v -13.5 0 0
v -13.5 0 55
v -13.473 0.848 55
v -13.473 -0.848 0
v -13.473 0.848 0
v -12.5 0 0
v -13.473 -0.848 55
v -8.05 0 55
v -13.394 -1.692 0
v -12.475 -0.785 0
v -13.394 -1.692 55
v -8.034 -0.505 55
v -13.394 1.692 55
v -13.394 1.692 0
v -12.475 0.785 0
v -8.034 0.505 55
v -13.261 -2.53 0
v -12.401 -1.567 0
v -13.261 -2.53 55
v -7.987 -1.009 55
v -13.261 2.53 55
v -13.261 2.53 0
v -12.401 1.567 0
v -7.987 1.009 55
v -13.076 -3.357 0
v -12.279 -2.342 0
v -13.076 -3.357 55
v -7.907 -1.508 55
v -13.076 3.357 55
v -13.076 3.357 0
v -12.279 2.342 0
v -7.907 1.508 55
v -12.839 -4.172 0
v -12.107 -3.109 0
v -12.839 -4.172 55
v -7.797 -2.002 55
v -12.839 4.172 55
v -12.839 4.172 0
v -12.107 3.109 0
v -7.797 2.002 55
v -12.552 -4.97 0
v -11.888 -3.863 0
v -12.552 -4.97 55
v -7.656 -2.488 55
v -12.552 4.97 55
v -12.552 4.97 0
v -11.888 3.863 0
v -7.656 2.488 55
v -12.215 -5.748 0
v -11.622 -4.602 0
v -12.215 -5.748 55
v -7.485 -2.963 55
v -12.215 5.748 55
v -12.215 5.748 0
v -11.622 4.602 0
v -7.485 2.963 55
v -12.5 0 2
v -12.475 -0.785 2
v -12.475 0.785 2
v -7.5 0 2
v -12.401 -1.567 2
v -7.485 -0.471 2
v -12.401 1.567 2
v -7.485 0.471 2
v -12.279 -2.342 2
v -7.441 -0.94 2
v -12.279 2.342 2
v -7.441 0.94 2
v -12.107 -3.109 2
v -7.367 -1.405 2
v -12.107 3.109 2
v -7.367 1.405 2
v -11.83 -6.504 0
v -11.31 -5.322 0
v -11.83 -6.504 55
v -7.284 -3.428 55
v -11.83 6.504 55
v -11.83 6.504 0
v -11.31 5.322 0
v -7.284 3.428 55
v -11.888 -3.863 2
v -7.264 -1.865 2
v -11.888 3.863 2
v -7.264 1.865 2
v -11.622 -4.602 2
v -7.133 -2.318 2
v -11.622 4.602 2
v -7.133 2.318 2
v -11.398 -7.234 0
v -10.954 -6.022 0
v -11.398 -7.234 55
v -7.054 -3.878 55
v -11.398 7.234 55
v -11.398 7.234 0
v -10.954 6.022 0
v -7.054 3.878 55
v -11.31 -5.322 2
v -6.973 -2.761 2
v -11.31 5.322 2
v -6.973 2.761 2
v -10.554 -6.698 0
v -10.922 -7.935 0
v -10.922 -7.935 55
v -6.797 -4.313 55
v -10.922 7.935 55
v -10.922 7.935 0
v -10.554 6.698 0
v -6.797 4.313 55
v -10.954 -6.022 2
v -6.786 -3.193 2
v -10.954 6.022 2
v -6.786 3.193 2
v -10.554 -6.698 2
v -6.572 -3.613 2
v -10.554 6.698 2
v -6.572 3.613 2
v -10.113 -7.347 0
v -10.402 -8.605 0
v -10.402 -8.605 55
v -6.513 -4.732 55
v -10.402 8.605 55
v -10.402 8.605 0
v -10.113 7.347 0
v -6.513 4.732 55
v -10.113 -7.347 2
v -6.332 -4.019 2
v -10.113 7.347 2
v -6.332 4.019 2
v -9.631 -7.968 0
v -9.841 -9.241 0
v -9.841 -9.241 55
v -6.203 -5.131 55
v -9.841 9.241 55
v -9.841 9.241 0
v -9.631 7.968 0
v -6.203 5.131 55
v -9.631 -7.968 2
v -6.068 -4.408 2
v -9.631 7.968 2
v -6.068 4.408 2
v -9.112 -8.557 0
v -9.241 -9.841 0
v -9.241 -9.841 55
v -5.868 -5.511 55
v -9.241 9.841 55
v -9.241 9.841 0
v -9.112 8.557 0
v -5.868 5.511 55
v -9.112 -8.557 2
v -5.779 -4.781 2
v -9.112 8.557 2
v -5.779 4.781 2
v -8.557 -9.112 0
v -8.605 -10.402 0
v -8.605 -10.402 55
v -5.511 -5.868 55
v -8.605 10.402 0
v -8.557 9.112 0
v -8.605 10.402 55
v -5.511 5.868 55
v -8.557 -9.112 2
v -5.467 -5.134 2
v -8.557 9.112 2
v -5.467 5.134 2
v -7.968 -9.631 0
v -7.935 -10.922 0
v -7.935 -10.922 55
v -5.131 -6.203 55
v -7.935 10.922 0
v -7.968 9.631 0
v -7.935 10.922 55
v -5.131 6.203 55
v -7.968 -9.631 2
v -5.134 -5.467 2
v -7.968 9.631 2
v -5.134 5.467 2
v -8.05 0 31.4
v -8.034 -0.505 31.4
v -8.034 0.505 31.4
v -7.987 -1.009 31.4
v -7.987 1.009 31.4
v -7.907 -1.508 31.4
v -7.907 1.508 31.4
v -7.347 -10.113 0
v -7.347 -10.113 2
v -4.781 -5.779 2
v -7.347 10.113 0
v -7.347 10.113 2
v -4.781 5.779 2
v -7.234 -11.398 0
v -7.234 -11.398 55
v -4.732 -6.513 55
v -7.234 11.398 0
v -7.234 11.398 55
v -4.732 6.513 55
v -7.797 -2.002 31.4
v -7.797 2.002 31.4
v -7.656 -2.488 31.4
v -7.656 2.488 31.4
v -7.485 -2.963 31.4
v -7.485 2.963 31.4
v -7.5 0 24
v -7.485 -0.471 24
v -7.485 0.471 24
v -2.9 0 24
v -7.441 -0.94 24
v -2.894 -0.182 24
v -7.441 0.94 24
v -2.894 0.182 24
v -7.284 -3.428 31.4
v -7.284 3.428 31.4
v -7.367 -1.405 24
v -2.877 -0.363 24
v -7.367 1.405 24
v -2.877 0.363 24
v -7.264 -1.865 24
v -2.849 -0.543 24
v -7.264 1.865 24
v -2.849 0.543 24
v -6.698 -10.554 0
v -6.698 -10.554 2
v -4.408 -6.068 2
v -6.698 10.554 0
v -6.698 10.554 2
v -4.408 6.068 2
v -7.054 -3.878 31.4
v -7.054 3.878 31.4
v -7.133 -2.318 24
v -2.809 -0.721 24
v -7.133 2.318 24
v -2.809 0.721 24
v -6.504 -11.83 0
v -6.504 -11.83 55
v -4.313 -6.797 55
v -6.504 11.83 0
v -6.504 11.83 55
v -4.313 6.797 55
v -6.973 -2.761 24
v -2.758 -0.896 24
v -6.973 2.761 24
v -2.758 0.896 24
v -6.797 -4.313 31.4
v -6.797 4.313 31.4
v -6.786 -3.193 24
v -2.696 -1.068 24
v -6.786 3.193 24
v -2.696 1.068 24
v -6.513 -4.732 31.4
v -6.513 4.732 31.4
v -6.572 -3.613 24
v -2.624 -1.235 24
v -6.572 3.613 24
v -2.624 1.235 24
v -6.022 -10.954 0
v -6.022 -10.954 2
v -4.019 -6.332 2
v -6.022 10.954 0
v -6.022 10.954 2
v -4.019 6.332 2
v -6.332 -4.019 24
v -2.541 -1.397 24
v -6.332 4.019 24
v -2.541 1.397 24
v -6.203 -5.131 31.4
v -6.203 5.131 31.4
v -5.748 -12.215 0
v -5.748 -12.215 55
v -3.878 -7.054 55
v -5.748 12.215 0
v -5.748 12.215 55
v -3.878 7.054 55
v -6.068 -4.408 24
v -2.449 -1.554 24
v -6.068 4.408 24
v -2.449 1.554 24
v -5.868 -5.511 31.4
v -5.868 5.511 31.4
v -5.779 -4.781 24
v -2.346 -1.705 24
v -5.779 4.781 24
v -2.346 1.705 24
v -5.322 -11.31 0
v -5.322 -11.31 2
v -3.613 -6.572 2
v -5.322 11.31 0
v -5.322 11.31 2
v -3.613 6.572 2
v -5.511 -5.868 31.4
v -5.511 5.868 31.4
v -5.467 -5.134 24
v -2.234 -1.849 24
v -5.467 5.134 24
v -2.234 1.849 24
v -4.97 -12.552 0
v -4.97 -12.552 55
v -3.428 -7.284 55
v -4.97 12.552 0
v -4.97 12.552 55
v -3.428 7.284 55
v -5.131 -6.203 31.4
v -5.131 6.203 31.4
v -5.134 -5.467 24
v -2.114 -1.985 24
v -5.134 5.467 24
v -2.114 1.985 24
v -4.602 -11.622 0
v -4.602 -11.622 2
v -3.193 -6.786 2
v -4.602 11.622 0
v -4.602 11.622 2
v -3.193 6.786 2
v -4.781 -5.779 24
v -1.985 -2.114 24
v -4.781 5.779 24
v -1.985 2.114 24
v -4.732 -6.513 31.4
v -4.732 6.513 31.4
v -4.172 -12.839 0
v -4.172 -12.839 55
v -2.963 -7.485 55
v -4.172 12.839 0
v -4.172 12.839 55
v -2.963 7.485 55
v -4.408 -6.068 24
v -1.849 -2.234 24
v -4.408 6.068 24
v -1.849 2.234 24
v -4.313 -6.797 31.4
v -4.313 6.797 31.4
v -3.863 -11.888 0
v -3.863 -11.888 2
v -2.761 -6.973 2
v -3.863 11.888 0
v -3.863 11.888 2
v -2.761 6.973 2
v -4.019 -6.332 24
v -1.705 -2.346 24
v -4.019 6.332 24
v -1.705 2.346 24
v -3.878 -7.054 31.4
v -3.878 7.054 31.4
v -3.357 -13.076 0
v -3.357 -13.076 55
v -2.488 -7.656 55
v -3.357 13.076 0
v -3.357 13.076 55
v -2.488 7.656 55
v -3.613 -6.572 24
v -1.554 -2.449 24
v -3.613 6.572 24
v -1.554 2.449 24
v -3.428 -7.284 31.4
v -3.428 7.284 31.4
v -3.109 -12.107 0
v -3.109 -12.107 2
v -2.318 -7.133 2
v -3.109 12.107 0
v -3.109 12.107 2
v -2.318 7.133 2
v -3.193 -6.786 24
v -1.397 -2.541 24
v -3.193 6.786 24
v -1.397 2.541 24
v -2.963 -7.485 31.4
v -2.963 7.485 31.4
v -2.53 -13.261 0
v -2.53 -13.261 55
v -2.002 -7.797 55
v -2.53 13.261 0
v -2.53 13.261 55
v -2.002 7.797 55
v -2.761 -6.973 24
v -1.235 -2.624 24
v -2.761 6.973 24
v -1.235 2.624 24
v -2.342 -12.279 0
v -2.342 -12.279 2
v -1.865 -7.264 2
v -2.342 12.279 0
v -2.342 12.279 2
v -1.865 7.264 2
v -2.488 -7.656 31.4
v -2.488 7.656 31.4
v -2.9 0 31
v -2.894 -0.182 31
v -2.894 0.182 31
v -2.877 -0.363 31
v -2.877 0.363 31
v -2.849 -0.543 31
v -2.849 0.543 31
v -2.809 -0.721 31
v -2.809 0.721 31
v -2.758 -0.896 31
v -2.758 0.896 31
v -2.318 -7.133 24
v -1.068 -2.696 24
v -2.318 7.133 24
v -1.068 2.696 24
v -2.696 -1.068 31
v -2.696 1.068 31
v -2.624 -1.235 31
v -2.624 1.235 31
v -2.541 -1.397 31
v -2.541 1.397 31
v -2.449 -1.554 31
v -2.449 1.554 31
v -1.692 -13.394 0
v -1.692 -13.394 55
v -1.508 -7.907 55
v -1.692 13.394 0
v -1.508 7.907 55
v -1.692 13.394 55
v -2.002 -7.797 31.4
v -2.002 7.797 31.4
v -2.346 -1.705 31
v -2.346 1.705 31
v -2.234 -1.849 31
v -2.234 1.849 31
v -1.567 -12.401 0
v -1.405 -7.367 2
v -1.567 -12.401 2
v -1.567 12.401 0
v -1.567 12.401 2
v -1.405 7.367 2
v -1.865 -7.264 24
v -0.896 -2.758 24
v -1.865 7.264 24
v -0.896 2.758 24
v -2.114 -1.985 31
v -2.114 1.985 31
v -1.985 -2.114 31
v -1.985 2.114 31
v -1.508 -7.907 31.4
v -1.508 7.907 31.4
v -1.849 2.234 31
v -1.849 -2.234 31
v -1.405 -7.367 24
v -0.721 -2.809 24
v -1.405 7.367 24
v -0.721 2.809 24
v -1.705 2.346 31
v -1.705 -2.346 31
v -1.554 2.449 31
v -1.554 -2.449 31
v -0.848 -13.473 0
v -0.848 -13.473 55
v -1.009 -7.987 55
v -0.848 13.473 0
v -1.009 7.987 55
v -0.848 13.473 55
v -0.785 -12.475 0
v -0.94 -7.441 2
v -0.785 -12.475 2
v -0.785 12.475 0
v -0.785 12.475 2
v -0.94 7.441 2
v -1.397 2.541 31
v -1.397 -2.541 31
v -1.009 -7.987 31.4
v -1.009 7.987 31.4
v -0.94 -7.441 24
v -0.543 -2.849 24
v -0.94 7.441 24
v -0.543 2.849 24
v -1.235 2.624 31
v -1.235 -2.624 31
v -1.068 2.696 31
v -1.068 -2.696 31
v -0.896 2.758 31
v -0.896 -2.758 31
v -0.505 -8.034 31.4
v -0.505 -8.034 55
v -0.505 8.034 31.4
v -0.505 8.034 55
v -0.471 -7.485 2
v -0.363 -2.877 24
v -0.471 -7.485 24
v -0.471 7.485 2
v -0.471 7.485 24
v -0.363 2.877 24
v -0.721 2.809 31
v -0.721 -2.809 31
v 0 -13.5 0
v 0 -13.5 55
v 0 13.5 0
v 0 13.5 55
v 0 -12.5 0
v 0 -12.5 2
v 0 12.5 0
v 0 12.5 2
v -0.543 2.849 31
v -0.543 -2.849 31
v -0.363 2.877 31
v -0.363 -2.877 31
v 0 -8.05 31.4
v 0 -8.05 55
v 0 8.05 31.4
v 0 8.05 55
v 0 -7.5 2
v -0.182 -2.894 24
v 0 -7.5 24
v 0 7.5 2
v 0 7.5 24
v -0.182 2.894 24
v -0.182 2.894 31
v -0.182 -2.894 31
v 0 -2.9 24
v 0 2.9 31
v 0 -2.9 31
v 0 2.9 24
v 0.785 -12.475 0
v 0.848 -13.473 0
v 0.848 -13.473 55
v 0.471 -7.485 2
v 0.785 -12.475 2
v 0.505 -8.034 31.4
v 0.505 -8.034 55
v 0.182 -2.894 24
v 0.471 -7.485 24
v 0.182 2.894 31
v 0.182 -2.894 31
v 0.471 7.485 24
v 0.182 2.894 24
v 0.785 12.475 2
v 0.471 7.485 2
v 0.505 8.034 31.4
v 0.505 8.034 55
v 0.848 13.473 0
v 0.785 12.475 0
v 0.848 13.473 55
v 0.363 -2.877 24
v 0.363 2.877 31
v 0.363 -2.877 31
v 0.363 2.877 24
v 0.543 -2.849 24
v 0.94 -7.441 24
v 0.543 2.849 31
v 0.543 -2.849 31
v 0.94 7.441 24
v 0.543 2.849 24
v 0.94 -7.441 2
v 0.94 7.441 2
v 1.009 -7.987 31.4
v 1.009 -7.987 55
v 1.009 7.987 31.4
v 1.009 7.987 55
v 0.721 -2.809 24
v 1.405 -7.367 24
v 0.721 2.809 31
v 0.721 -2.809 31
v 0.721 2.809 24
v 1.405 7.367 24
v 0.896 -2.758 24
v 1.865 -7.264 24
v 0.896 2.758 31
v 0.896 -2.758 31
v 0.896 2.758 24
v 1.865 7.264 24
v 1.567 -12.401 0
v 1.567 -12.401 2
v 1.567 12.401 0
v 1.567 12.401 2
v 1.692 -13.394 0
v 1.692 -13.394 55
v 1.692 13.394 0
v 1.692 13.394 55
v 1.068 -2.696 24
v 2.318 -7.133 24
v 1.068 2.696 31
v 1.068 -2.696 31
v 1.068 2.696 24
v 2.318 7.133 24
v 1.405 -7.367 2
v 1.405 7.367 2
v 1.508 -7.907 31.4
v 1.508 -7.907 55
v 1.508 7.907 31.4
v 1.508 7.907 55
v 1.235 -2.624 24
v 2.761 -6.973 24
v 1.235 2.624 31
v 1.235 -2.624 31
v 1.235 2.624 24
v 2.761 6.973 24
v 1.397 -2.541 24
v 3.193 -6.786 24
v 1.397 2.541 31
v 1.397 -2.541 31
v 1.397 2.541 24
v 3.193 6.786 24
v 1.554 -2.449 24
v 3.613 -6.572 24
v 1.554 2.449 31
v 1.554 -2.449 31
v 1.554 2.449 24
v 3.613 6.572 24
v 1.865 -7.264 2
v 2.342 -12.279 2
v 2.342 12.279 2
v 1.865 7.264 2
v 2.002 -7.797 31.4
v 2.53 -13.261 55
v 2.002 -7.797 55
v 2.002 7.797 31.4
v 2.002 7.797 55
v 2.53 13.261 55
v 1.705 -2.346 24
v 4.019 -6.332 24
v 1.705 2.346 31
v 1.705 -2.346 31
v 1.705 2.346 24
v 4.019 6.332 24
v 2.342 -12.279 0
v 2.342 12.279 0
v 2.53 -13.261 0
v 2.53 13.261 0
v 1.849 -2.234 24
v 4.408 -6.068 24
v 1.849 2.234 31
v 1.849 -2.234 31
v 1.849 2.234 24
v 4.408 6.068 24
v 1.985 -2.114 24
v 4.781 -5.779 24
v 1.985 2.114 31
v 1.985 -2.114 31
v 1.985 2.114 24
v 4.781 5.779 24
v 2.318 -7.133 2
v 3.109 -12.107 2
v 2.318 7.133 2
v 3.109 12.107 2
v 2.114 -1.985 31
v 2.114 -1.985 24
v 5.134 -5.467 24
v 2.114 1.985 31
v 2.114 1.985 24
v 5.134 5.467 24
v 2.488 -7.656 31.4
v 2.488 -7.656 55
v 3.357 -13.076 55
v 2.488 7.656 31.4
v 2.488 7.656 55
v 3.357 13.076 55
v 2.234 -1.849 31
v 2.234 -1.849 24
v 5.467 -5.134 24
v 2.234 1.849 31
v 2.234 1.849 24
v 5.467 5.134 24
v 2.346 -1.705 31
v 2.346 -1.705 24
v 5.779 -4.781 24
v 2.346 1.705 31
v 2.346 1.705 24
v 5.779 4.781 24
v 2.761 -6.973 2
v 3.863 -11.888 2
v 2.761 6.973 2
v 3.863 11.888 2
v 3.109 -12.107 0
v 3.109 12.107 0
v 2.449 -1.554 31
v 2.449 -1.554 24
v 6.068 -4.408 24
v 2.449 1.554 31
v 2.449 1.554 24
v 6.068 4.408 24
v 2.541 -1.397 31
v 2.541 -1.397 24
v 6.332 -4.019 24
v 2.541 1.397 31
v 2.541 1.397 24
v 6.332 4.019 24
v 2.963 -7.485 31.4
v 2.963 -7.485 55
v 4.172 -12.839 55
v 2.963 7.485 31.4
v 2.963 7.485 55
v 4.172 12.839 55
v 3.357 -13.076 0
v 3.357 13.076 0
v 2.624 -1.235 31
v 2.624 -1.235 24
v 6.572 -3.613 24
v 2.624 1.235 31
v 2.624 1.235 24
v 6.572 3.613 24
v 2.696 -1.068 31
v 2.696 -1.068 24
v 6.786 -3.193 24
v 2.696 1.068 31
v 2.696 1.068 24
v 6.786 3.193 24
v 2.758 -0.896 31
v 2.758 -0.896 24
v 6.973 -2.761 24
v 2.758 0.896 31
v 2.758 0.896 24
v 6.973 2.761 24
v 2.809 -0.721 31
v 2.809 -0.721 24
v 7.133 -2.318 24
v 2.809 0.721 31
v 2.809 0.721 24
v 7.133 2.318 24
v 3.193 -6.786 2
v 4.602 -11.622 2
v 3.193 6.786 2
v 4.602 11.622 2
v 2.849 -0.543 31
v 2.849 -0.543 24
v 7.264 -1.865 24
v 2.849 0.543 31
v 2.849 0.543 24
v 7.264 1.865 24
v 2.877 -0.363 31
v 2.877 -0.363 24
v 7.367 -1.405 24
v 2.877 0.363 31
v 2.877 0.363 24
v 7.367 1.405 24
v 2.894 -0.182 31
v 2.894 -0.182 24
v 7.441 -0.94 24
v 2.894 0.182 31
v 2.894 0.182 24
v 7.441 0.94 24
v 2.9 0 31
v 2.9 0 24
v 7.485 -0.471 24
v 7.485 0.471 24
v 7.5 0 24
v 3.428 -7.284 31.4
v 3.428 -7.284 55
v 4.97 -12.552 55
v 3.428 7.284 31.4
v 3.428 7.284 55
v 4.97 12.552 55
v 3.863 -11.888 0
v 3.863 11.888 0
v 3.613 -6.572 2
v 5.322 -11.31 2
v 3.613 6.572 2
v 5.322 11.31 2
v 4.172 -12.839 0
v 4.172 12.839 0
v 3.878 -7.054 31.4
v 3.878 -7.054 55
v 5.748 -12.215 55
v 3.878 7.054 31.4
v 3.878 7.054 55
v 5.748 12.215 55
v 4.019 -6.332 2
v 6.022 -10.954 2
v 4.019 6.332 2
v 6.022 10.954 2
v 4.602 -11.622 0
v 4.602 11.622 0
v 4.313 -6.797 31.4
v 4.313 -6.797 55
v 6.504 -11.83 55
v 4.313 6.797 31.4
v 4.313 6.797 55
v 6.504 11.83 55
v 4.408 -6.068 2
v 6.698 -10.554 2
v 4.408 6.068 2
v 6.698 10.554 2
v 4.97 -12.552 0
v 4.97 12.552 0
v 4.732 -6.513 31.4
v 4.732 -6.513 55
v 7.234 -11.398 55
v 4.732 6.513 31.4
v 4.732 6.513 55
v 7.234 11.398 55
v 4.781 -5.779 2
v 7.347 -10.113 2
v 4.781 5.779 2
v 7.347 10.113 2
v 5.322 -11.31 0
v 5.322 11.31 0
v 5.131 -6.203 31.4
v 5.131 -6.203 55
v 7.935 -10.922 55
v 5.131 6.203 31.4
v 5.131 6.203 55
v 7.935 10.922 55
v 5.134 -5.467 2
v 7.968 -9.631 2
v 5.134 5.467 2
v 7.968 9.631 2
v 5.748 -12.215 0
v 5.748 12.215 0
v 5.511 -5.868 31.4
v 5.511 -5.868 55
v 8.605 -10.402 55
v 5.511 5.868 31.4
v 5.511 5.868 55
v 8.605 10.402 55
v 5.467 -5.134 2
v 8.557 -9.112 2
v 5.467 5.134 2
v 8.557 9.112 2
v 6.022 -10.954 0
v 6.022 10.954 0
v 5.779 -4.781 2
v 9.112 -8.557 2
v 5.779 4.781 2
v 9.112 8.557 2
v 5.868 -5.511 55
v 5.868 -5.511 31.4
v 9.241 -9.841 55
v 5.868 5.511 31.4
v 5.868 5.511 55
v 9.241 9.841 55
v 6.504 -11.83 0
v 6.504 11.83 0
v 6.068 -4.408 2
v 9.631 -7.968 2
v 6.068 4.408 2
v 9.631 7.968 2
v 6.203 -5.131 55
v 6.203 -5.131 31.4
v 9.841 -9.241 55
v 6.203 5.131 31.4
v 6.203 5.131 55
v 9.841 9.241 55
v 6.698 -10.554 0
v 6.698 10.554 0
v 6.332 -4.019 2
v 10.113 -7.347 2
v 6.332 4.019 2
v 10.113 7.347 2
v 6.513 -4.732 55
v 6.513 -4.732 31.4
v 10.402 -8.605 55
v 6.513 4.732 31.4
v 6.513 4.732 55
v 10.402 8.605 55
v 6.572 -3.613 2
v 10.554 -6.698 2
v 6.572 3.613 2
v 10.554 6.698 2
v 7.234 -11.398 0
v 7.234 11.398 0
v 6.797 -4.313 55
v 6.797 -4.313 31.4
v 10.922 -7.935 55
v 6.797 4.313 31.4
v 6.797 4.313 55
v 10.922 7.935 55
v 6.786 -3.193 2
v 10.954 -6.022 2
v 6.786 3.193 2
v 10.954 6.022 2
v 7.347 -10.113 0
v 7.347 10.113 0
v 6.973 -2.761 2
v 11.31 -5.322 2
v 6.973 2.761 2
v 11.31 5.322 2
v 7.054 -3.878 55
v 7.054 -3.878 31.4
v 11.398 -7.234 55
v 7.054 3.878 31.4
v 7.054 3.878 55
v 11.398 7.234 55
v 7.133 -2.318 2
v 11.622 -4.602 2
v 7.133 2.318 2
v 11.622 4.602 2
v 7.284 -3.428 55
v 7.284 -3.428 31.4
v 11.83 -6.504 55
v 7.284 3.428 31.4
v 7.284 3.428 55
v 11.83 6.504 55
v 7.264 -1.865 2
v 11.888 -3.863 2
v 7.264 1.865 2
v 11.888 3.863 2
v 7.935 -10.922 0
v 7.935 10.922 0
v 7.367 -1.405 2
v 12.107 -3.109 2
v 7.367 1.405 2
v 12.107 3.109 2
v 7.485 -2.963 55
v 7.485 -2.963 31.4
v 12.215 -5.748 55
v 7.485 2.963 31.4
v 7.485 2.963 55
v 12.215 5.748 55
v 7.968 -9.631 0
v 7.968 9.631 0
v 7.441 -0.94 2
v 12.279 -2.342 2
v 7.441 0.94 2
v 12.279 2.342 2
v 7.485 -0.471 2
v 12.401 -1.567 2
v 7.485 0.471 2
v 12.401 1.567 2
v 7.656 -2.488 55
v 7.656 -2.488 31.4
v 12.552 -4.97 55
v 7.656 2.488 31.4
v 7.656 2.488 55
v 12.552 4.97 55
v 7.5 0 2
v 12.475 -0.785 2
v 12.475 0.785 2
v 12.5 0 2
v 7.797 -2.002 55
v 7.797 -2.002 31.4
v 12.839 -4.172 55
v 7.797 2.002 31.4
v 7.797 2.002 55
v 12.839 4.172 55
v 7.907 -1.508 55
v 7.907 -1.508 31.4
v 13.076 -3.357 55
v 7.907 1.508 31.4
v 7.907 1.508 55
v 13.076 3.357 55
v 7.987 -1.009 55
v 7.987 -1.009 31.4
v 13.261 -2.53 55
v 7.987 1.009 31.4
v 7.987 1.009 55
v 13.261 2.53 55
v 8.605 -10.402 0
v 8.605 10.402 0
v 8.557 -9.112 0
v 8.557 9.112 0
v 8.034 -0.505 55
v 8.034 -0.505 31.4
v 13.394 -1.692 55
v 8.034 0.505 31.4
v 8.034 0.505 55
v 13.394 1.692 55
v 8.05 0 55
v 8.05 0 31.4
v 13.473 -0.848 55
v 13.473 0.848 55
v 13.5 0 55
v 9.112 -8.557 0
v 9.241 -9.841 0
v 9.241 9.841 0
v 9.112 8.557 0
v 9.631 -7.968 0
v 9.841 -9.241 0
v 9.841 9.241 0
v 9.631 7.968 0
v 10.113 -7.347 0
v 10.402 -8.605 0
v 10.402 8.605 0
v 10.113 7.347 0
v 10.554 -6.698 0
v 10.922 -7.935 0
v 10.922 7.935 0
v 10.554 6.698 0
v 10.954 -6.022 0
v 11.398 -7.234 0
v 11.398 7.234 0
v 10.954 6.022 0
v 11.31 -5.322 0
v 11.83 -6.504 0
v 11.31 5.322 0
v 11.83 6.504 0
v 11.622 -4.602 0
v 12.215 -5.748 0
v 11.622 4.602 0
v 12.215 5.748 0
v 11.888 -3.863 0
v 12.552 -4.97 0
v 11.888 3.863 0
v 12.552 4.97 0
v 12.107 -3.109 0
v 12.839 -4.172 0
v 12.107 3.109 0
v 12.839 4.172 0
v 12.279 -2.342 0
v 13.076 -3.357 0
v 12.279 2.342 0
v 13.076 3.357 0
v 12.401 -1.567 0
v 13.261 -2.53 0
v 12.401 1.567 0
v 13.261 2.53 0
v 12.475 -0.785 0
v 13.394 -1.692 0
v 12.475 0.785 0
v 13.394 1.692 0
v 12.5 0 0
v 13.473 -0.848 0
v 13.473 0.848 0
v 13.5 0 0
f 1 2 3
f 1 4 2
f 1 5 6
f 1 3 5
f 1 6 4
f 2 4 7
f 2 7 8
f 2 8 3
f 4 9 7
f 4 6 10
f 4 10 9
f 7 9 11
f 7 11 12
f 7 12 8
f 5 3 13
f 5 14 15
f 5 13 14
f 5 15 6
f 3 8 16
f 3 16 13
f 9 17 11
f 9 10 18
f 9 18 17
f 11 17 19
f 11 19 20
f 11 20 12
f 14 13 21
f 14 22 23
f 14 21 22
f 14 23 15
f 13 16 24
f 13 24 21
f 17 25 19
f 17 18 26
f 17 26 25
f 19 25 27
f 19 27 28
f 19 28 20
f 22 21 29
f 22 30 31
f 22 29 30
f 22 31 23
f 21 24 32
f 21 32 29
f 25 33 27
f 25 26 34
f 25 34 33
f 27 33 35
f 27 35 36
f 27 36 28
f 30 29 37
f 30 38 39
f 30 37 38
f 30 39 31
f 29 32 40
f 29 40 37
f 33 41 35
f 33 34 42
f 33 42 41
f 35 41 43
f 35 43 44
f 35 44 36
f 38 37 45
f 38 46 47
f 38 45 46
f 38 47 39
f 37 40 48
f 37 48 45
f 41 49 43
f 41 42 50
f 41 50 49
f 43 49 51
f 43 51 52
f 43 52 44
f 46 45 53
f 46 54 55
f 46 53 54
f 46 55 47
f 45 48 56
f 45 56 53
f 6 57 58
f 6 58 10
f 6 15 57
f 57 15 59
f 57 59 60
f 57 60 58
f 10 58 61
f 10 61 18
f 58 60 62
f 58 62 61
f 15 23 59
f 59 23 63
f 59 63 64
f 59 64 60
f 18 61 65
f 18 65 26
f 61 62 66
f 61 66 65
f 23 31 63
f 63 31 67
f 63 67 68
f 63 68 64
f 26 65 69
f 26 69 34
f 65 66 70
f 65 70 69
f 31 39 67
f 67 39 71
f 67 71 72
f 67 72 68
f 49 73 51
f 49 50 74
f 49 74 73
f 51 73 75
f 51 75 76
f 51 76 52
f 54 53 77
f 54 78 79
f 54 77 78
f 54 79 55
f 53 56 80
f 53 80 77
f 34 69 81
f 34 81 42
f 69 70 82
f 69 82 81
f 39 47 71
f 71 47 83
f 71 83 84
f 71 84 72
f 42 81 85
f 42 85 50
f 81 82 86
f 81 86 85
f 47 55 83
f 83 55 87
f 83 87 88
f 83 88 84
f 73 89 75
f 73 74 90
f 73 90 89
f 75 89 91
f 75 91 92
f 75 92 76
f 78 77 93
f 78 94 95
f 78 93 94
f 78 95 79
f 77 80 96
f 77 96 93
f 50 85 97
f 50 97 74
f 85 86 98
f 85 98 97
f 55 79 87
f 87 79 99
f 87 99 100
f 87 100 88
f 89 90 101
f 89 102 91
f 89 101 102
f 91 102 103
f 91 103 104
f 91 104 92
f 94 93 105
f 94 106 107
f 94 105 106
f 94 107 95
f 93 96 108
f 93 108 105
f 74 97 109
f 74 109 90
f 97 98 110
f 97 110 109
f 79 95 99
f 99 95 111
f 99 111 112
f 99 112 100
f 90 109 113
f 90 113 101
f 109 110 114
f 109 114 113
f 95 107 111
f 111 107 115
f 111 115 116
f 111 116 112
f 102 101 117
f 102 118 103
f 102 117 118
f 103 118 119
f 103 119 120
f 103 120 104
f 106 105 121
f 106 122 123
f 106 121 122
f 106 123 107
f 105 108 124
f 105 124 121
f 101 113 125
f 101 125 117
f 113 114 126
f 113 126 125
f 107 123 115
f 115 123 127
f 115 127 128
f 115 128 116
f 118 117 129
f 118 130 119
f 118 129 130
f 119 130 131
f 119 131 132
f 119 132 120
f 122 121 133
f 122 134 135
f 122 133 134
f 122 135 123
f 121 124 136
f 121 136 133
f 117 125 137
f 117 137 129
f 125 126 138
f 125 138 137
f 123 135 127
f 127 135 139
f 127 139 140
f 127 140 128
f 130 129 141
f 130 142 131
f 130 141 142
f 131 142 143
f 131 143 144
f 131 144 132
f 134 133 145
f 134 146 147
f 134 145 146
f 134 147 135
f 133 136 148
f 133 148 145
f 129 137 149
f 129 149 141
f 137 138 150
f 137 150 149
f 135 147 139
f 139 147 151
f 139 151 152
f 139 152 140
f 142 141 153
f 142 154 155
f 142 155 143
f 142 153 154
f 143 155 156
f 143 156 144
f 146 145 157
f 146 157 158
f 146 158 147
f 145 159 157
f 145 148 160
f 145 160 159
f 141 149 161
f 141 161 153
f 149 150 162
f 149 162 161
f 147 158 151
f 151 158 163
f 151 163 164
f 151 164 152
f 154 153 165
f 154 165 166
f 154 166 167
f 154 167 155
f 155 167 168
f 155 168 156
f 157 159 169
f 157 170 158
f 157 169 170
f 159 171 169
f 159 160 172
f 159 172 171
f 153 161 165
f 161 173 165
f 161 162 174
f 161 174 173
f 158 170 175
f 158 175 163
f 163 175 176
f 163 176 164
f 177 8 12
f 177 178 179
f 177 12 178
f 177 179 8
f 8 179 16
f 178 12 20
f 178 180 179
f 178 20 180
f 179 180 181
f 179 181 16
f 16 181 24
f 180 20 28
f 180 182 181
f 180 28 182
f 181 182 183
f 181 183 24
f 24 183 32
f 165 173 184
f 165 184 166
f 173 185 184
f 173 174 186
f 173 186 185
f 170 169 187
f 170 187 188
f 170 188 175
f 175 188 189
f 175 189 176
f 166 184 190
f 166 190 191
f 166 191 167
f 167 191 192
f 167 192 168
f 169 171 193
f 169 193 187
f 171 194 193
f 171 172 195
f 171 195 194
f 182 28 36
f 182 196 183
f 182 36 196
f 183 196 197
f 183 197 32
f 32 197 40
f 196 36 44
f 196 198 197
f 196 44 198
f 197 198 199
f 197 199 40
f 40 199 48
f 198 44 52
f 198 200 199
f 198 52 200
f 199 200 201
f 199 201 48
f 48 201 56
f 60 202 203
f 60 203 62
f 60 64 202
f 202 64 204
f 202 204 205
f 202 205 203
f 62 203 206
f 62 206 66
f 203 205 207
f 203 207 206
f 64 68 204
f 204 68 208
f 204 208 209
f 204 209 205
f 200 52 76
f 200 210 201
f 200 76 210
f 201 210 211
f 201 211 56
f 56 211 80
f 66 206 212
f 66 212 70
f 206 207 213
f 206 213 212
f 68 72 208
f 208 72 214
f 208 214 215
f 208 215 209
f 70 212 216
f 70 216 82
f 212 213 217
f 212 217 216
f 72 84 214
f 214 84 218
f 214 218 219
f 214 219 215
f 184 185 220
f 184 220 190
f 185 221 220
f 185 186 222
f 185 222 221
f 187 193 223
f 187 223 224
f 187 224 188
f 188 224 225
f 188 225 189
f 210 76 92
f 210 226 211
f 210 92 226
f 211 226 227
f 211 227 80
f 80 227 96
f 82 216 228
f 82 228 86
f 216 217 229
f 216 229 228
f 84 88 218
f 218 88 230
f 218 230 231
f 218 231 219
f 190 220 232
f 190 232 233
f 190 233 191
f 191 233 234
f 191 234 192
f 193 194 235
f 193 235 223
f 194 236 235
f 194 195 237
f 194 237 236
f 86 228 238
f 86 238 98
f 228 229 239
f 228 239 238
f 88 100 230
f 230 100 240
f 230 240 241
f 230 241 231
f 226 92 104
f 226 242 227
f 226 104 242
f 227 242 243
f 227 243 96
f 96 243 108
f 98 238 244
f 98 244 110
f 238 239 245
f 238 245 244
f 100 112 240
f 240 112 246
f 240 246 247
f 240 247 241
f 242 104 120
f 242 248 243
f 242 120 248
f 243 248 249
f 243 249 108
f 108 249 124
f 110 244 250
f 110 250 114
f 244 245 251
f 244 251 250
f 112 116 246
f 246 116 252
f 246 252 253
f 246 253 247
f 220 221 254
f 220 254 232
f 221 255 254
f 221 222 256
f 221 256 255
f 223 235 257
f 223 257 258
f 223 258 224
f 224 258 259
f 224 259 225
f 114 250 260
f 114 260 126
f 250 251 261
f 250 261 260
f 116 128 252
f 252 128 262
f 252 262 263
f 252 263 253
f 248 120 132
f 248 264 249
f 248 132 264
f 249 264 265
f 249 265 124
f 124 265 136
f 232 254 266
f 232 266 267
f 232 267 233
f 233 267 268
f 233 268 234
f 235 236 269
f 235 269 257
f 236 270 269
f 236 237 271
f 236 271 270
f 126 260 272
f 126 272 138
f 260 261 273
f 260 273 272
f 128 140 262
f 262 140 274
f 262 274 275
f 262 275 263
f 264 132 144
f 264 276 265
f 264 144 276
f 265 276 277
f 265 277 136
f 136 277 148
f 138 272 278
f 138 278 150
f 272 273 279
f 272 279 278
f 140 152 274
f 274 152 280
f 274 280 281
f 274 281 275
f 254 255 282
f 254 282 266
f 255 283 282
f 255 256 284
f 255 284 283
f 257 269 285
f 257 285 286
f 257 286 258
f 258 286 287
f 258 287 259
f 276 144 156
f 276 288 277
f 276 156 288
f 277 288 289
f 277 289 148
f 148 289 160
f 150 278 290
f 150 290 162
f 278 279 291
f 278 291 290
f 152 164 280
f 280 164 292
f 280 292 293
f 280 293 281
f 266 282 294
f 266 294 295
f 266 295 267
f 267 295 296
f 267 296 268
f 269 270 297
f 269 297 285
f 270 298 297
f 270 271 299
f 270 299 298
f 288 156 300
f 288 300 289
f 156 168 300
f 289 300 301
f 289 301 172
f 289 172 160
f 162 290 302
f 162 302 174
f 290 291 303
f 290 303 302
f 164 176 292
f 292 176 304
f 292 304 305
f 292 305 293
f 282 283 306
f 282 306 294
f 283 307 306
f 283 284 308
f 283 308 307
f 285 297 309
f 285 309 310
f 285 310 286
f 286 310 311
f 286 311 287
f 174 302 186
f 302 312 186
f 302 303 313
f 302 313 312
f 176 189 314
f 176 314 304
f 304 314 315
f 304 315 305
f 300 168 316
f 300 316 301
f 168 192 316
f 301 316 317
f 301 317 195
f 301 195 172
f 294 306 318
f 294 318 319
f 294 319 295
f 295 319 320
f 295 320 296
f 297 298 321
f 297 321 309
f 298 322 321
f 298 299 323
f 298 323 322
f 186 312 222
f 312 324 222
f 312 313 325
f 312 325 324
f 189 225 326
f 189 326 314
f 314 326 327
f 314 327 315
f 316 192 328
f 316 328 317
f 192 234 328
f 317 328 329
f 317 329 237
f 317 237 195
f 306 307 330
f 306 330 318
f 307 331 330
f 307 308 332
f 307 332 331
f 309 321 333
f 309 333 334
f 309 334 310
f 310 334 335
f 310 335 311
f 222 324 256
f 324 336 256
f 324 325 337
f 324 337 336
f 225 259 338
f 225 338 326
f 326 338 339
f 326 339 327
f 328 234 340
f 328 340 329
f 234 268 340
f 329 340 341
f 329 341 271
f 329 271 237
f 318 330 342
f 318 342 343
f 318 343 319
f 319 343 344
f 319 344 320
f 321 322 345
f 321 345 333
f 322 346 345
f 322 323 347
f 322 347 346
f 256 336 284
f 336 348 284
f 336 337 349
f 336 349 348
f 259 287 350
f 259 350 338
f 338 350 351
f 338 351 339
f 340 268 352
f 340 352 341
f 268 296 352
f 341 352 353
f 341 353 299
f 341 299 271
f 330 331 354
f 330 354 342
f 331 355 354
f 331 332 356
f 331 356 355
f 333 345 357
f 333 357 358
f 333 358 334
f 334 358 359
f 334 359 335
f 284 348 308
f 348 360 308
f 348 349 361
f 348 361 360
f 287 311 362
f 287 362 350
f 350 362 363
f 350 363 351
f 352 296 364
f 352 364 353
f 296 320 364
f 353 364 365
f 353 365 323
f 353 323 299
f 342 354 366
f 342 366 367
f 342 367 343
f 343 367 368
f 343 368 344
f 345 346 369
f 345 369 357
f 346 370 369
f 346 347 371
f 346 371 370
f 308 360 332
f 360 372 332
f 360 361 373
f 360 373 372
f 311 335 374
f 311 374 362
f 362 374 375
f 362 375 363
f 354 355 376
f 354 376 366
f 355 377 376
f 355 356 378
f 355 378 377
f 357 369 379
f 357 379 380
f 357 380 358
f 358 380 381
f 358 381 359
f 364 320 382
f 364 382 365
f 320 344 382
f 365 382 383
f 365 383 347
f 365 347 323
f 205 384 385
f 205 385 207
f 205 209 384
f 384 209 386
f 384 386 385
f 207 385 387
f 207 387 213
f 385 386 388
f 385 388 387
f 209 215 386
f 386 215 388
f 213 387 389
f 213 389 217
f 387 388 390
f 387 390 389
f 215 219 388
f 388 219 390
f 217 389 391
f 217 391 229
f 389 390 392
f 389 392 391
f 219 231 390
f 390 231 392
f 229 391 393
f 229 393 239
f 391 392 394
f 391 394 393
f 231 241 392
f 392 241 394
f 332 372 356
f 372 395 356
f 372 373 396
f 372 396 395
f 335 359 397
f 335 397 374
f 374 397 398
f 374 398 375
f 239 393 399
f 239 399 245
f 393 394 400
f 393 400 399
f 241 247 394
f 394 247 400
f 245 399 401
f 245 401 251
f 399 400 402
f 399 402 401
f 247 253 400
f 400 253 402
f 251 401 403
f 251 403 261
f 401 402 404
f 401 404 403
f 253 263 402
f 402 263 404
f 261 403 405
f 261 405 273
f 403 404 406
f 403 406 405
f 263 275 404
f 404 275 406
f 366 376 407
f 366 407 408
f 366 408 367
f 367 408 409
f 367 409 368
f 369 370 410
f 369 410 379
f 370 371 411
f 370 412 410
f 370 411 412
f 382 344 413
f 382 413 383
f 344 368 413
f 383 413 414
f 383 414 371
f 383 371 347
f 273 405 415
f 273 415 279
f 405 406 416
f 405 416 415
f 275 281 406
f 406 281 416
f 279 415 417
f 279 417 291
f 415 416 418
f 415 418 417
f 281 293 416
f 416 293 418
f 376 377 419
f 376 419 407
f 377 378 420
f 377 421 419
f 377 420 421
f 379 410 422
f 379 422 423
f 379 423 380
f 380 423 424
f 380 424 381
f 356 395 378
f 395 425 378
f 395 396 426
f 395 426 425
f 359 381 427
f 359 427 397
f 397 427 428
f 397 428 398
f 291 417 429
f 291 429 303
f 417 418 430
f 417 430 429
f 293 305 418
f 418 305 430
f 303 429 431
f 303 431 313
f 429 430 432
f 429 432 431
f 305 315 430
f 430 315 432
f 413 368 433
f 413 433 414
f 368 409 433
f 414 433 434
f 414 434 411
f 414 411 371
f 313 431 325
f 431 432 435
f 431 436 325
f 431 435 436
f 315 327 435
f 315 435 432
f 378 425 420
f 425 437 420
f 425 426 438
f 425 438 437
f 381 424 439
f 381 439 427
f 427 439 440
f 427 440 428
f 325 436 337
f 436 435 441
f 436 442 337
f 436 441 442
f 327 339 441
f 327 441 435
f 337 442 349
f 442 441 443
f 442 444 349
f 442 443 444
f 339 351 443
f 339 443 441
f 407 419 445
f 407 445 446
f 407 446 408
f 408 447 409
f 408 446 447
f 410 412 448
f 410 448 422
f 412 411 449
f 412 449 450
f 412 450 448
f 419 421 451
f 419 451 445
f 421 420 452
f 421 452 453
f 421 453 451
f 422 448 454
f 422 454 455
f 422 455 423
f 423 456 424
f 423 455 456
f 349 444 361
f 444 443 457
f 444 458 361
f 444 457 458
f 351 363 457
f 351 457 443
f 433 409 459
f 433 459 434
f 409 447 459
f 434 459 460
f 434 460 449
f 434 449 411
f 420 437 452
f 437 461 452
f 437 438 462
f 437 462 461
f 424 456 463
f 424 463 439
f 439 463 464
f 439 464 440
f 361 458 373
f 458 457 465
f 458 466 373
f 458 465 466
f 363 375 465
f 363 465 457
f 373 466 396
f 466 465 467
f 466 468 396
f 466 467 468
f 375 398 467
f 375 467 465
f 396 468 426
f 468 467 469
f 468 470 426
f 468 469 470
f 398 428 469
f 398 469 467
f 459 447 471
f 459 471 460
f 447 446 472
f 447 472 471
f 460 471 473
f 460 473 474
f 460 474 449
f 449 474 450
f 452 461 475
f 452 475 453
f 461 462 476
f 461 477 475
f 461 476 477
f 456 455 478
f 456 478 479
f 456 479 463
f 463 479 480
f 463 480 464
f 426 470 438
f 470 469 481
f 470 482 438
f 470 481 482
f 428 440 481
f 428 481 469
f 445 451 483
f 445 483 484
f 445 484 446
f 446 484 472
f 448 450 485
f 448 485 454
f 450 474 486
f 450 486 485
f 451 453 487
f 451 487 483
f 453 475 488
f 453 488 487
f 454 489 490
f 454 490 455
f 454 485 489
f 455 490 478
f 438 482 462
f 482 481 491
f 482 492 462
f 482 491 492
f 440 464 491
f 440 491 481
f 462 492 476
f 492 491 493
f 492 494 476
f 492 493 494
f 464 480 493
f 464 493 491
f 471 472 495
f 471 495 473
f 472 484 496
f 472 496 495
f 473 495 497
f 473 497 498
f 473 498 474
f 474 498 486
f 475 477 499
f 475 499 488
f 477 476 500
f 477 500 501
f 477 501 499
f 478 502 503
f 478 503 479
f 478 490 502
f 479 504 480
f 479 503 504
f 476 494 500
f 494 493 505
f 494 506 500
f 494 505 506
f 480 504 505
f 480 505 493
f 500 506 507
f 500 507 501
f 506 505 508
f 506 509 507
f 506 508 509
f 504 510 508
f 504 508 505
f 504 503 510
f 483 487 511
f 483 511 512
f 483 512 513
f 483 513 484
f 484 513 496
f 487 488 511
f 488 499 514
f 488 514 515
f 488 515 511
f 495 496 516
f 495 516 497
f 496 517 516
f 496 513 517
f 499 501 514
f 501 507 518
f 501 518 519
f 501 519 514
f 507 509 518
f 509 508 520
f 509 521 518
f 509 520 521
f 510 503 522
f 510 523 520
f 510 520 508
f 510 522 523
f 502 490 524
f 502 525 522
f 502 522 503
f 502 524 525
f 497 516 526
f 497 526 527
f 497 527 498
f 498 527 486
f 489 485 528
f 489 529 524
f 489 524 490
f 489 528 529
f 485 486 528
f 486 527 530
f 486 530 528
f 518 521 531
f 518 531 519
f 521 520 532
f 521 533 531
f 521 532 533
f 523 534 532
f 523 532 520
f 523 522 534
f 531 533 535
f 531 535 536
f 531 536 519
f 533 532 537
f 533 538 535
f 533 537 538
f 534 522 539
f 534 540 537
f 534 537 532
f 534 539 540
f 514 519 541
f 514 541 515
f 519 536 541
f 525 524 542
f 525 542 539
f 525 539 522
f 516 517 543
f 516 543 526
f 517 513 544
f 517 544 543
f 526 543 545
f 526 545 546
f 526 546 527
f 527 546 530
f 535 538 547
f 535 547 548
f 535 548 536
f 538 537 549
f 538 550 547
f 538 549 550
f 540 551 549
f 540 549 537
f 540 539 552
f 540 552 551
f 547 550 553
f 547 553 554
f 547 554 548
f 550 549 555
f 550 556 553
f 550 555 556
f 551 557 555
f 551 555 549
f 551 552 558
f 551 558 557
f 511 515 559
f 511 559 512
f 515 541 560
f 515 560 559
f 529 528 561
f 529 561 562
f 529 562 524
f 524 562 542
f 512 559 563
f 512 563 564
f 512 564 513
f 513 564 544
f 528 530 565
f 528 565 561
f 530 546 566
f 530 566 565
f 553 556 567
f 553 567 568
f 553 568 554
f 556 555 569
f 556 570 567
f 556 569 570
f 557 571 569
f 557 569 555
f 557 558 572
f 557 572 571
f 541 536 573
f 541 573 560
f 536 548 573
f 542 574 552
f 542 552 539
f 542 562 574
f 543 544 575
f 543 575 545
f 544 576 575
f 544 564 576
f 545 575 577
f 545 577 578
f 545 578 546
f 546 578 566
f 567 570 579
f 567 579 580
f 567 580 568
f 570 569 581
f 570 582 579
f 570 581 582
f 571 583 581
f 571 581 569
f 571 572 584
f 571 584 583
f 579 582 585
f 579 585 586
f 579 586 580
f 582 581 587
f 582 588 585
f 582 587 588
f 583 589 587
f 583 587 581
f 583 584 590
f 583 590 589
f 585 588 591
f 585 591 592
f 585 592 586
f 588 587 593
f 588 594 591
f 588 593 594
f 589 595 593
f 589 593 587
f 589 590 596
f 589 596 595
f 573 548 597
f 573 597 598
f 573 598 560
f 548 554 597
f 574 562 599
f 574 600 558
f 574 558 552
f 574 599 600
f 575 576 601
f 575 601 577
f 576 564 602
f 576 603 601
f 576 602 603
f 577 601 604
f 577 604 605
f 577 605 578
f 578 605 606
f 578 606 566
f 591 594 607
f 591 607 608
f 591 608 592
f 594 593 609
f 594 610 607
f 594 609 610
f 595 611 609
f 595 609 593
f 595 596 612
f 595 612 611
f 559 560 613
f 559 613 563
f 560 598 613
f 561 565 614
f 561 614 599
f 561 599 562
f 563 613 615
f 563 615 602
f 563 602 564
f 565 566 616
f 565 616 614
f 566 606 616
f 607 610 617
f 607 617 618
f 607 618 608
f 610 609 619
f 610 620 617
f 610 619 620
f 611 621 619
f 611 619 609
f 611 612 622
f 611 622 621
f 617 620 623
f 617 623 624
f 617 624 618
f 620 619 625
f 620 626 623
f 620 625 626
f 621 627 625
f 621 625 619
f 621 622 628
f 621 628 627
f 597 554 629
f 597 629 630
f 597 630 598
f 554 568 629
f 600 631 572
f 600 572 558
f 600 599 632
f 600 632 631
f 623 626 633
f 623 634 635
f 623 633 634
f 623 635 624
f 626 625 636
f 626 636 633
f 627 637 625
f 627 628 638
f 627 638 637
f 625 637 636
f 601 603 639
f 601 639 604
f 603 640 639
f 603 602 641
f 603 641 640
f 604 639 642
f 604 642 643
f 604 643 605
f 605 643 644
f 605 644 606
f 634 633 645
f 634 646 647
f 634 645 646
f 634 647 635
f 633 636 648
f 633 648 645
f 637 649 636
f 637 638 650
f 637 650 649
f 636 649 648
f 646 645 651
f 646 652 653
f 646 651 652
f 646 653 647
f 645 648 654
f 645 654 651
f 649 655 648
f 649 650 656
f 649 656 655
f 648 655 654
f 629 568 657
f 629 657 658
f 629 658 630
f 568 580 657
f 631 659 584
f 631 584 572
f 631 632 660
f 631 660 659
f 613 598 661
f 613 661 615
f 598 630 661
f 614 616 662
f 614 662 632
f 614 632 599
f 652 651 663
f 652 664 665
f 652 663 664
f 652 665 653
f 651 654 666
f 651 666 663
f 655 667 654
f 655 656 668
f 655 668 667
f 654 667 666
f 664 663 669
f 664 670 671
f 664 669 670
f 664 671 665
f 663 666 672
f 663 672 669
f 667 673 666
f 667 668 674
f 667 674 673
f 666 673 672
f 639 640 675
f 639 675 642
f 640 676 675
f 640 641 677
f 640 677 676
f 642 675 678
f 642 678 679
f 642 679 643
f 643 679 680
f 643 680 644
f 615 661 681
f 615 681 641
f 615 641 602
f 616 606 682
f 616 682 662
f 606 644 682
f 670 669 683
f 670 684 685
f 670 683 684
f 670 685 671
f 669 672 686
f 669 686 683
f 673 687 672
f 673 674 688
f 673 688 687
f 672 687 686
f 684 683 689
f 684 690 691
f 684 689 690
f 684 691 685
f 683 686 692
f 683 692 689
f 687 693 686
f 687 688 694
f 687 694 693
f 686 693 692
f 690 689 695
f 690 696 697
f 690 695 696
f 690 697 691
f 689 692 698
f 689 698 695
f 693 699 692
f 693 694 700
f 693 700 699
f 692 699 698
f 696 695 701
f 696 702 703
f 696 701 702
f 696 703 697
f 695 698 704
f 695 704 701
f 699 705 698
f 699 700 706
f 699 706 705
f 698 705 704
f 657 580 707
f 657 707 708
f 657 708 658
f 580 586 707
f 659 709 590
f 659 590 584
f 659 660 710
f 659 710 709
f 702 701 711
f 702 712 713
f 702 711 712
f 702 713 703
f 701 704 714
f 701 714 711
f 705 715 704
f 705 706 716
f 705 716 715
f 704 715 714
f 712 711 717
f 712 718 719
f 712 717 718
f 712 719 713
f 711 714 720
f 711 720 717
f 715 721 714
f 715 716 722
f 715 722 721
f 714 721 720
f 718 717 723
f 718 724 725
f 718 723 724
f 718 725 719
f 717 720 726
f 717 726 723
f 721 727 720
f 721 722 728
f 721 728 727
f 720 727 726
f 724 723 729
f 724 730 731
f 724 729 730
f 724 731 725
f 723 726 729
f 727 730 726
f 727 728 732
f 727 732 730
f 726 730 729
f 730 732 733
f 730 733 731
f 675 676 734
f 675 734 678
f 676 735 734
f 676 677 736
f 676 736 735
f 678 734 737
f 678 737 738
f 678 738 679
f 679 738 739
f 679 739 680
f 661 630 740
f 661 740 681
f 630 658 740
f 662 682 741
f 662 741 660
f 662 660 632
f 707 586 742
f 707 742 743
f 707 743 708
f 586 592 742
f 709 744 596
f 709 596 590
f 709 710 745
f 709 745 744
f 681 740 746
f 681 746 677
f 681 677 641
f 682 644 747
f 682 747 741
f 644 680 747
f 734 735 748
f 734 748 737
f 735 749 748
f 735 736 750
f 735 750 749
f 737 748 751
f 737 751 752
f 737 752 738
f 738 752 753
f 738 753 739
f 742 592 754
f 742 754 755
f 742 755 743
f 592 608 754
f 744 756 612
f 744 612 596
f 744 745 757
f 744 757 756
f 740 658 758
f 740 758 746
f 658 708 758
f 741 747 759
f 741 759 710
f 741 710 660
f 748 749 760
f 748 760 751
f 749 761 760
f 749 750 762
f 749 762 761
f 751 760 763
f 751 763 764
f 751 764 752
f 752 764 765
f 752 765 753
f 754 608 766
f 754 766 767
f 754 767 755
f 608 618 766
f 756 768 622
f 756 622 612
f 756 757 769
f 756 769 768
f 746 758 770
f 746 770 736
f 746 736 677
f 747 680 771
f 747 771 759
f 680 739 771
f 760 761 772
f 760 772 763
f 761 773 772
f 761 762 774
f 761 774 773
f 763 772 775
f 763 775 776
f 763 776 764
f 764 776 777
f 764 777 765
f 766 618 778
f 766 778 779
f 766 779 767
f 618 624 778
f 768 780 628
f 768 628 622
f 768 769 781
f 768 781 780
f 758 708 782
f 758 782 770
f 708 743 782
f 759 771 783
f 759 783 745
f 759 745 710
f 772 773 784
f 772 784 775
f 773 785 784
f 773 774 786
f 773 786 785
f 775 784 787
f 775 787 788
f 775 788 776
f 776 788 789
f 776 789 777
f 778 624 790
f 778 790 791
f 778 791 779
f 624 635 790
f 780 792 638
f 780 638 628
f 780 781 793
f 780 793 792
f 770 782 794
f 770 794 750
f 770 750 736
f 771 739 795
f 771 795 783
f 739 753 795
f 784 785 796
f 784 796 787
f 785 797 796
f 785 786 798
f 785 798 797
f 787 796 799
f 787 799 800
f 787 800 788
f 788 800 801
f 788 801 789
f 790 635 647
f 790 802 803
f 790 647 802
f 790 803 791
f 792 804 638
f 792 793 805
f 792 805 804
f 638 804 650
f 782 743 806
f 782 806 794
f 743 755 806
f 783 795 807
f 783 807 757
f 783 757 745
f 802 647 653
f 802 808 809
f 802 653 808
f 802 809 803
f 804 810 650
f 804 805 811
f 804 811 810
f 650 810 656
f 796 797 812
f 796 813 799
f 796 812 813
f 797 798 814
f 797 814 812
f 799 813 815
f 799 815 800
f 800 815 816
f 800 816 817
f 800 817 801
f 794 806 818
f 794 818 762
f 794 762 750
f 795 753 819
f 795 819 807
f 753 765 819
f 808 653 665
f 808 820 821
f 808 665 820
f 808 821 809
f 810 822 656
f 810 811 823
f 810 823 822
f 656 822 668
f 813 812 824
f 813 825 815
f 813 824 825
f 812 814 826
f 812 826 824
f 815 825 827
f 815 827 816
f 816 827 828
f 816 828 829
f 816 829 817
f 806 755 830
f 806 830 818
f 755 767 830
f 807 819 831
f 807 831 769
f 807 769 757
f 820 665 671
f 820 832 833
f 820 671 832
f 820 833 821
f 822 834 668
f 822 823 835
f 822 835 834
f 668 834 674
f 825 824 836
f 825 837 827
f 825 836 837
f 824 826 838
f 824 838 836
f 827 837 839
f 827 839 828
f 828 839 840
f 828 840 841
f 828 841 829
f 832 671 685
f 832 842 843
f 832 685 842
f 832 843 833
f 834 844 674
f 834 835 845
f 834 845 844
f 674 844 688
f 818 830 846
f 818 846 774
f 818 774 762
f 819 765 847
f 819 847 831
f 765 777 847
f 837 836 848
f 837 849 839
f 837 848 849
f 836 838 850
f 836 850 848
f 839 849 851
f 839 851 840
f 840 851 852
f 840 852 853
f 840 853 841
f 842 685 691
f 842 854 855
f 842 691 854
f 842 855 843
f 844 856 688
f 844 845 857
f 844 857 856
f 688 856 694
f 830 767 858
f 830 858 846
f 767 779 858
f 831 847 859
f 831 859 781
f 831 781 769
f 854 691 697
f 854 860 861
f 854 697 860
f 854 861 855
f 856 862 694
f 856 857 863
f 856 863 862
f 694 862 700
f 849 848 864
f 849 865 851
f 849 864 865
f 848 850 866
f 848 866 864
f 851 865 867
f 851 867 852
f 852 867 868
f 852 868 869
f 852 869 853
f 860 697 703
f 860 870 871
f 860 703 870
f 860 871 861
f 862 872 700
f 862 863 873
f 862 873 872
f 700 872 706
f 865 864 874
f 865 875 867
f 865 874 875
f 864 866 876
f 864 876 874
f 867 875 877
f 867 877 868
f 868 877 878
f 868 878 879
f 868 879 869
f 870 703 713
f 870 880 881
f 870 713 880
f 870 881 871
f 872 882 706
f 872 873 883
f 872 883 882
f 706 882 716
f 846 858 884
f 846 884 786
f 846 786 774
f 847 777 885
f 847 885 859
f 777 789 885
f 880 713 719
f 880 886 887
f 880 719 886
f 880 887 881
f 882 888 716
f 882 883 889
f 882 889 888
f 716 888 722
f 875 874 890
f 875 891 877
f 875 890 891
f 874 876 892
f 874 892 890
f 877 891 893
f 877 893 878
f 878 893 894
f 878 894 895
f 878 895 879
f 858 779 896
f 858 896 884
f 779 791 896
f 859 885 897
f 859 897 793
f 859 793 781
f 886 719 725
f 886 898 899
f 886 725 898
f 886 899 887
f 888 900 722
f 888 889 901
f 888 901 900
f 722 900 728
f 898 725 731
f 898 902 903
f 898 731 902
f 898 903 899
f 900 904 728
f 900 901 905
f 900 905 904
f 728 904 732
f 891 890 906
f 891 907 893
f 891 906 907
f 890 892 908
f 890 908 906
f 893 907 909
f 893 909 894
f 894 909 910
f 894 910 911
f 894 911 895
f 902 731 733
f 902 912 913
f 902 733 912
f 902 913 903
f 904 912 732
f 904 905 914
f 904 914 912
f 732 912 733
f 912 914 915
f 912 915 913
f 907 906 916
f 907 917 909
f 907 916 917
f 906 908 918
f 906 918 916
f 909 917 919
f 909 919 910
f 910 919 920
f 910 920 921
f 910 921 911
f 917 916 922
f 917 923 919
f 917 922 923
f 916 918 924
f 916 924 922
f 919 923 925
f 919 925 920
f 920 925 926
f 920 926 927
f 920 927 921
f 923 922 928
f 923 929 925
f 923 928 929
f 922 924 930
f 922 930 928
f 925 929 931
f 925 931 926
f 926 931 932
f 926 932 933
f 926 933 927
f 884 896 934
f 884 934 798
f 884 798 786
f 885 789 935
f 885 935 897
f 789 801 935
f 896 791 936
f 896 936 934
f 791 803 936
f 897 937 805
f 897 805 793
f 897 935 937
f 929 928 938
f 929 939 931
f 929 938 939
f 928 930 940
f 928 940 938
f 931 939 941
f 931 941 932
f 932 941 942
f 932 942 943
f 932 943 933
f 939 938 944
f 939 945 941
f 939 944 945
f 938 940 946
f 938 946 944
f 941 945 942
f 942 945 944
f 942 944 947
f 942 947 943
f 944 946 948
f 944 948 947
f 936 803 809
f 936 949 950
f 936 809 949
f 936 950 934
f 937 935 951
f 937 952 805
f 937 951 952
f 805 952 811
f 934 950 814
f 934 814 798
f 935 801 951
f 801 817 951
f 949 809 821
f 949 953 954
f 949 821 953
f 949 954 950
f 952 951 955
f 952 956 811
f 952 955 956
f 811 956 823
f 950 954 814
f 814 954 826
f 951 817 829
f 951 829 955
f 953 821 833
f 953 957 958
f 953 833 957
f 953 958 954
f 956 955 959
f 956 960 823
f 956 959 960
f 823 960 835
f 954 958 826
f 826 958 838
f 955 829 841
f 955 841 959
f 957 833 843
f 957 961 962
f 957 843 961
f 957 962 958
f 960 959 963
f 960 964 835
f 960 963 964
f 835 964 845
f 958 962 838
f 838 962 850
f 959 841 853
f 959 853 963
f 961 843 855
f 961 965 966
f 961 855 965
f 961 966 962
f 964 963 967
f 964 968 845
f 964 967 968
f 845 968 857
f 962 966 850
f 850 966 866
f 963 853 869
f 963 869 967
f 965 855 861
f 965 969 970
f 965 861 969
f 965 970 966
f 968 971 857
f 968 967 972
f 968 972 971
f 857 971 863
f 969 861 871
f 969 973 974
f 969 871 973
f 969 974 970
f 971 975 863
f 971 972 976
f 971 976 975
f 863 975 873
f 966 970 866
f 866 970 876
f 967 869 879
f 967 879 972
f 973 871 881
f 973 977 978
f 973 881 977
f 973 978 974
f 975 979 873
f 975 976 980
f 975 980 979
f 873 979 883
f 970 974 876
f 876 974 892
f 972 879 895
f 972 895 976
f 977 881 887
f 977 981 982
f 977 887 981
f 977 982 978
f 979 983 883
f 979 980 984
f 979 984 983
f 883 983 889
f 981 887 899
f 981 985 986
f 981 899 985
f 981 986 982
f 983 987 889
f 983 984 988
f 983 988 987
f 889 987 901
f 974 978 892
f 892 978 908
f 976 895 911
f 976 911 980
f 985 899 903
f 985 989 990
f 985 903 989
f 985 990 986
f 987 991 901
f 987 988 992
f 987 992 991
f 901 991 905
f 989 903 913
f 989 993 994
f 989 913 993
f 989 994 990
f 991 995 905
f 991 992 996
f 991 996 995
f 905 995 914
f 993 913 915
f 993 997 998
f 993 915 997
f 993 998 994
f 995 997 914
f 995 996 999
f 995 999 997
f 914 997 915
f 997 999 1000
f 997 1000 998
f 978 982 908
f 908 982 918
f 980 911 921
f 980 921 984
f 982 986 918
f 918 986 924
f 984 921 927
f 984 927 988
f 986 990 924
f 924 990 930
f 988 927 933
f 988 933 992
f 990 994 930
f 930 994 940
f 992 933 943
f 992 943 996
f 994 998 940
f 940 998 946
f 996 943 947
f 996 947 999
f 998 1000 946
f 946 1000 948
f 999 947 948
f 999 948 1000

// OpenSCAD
length = 55;
out_d = 27;

$fn=100;


difference(){
    cylinder(h=length, d=out_d);
    cylinder(d=25, h=2);
    cylinder(d=15, h=24);
    cylinder(h=31, d=5.8);
    
    translate([0, 0, 31+0.4]) cylinder(d=16.1, h=50);
    
}
